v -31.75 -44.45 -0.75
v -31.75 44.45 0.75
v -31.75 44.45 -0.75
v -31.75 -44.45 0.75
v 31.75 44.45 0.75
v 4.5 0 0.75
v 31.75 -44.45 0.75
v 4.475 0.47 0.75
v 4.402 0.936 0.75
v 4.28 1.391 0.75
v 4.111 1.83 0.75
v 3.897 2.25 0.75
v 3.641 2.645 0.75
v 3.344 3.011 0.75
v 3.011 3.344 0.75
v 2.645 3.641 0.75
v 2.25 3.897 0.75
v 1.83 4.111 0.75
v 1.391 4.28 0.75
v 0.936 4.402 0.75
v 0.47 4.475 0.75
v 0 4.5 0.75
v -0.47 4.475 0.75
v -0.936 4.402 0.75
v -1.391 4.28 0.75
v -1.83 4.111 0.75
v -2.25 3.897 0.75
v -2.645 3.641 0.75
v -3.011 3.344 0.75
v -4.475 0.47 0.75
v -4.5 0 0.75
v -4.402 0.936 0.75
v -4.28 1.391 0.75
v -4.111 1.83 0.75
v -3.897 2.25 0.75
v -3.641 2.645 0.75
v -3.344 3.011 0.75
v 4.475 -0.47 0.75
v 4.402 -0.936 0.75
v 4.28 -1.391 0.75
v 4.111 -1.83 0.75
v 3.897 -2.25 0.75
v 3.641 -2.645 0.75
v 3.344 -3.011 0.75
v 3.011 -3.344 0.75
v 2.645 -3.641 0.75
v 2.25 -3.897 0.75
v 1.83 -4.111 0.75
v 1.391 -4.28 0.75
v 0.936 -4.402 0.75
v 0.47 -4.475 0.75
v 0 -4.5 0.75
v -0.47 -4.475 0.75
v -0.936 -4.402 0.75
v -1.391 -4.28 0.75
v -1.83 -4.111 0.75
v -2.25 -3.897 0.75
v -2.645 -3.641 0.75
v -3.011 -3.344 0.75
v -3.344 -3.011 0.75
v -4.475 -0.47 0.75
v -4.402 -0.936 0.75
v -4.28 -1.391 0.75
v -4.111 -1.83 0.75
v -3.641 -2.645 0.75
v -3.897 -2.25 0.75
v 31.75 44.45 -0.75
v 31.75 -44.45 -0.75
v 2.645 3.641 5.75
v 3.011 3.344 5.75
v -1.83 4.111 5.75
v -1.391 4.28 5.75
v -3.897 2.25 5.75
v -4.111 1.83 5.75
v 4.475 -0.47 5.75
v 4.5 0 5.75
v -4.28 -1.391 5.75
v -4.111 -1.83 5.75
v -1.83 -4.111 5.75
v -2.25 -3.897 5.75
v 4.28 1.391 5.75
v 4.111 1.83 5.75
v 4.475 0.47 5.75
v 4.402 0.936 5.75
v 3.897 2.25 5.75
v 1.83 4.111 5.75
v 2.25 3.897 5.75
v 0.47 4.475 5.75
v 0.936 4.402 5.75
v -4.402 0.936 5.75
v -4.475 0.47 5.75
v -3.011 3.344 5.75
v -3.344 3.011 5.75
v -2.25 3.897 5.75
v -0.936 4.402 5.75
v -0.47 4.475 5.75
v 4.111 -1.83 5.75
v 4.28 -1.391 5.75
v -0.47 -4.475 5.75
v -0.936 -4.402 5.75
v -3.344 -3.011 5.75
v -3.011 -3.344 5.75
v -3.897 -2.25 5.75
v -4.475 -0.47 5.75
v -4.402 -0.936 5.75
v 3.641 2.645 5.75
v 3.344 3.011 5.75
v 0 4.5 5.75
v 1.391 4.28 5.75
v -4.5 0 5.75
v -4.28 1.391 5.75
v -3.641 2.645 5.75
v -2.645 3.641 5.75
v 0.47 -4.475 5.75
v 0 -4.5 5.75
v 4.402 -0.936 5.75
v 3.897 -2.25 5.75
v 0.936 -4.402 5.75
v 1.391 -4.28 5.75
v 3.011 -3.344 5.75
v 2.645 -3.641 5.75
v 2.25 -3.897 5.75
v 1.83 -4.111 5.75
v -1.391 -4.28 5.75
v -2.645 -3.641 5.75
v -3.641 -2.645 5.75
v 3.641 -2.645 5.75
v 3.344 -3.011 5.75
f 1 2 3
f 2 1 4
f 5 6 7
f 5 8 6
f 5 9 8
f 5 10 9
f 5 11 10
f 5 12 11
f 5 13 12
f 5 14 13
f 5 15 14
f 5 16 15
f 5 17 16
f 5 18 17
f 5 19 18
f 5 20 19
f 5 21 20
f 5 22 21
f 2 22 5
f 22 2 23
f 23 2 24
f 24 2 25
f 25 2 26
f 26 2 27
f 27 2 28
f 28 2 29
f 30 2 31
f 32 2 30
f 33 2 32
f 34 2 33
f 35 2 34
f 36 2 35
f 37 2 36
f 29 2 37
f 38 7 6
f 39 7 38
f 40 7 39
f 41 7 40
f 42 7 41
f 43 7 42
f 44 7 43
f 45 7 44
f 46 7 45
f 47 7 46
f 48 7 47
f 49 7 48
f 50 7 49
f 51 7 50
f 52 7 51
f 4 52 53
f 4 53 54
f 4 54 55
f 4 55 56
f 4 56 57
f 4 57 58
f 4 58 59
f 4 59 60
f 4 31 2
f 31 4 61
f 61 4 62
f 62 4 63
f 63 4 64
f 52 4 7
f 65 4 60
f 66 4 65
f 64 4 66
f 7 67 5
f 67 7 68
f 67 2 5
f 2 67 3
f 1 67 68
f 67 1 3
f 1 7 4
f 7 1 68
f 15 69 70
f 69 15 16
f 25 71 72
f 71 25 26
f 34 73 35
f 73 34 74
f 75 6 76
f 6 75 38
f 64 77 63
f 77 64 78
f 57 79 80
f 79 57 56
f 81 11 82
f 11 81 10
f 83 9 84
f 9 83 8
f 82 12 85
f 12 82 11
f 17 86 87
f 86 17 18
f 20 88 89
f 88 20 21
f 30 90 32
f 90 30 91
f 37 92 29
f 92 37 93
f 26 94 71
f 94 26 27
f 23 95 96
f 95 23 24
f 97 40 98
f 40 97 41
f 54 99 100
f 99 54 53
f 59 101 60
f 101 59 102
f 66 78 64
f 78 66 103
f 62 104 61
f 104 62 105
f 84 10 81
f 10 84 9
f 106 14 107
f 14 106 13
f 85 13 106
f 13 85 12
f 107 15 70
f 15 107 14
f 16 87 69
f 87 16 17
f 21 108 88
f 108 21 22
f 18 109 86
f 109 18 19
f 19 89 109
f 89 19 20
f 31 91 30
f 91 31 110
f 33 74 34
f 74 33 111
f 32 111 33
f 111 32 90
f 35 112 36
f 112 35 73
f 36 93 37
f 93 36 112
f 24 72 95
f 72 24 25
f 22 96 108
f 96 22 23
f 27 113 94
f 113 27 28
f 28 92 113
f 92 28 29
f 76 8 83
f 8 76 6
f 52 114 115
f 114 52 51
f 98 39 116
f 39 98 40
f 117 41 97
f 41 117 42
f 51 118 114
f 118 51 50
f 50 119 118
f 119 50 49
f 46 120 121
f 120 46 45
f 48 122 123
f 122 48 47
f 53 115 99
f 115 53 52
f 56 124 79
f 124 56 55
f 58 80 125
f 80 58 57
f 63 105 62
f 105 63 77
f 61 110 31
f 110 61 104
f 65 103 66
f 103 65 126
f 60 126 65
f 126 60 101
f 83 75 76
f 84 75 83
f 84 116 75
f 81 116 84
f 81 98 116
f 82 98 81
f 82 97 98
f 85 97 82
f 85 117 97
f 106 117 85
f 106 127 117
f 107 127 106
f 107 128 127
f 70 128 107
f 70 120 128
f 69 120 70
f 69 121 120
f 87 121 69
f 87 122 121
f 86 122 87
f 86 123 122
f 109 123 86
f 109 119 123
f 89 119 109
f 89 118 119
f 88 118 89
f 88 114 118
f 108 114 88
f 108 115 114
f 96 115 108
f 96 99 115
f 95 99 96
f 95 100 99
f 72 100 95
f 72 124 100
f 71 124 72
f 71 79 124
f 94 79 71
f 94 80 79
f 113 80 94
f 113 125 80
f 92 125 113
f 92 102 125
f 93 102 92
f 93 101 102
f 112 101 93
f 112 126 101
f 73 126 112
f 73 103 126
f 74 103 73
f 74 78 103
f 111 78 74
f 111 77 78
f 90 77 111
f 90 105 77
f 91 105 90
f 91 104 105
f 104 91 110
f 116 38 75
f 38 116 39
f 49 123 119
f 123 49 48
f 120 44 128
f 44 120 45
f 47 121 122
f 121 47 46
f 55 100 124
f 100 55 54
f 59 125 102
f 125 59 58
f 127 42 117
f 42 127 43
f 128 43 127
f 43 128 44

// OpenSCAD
size_platform_z=1.5;
size_spring_z=5;
size_spring_dia=9;
//poker size
card_size_x=63.5;
card_size_y=88.9;

//bridge size
//card_size_x=56;
//card_size_y=88.9;

//b8
//card_size_x=62;
//card_size_y=88;


union(){
	
cube([card_size_x,card_size_y,size_platform_z], center=true);

translate([0,0,size_spring_z/2+size_platform_z/2])
cylinder(h=size_spring_z, d1= size_spring_dia, d2=size_spring_dia, $fn=60, center = true);

}
